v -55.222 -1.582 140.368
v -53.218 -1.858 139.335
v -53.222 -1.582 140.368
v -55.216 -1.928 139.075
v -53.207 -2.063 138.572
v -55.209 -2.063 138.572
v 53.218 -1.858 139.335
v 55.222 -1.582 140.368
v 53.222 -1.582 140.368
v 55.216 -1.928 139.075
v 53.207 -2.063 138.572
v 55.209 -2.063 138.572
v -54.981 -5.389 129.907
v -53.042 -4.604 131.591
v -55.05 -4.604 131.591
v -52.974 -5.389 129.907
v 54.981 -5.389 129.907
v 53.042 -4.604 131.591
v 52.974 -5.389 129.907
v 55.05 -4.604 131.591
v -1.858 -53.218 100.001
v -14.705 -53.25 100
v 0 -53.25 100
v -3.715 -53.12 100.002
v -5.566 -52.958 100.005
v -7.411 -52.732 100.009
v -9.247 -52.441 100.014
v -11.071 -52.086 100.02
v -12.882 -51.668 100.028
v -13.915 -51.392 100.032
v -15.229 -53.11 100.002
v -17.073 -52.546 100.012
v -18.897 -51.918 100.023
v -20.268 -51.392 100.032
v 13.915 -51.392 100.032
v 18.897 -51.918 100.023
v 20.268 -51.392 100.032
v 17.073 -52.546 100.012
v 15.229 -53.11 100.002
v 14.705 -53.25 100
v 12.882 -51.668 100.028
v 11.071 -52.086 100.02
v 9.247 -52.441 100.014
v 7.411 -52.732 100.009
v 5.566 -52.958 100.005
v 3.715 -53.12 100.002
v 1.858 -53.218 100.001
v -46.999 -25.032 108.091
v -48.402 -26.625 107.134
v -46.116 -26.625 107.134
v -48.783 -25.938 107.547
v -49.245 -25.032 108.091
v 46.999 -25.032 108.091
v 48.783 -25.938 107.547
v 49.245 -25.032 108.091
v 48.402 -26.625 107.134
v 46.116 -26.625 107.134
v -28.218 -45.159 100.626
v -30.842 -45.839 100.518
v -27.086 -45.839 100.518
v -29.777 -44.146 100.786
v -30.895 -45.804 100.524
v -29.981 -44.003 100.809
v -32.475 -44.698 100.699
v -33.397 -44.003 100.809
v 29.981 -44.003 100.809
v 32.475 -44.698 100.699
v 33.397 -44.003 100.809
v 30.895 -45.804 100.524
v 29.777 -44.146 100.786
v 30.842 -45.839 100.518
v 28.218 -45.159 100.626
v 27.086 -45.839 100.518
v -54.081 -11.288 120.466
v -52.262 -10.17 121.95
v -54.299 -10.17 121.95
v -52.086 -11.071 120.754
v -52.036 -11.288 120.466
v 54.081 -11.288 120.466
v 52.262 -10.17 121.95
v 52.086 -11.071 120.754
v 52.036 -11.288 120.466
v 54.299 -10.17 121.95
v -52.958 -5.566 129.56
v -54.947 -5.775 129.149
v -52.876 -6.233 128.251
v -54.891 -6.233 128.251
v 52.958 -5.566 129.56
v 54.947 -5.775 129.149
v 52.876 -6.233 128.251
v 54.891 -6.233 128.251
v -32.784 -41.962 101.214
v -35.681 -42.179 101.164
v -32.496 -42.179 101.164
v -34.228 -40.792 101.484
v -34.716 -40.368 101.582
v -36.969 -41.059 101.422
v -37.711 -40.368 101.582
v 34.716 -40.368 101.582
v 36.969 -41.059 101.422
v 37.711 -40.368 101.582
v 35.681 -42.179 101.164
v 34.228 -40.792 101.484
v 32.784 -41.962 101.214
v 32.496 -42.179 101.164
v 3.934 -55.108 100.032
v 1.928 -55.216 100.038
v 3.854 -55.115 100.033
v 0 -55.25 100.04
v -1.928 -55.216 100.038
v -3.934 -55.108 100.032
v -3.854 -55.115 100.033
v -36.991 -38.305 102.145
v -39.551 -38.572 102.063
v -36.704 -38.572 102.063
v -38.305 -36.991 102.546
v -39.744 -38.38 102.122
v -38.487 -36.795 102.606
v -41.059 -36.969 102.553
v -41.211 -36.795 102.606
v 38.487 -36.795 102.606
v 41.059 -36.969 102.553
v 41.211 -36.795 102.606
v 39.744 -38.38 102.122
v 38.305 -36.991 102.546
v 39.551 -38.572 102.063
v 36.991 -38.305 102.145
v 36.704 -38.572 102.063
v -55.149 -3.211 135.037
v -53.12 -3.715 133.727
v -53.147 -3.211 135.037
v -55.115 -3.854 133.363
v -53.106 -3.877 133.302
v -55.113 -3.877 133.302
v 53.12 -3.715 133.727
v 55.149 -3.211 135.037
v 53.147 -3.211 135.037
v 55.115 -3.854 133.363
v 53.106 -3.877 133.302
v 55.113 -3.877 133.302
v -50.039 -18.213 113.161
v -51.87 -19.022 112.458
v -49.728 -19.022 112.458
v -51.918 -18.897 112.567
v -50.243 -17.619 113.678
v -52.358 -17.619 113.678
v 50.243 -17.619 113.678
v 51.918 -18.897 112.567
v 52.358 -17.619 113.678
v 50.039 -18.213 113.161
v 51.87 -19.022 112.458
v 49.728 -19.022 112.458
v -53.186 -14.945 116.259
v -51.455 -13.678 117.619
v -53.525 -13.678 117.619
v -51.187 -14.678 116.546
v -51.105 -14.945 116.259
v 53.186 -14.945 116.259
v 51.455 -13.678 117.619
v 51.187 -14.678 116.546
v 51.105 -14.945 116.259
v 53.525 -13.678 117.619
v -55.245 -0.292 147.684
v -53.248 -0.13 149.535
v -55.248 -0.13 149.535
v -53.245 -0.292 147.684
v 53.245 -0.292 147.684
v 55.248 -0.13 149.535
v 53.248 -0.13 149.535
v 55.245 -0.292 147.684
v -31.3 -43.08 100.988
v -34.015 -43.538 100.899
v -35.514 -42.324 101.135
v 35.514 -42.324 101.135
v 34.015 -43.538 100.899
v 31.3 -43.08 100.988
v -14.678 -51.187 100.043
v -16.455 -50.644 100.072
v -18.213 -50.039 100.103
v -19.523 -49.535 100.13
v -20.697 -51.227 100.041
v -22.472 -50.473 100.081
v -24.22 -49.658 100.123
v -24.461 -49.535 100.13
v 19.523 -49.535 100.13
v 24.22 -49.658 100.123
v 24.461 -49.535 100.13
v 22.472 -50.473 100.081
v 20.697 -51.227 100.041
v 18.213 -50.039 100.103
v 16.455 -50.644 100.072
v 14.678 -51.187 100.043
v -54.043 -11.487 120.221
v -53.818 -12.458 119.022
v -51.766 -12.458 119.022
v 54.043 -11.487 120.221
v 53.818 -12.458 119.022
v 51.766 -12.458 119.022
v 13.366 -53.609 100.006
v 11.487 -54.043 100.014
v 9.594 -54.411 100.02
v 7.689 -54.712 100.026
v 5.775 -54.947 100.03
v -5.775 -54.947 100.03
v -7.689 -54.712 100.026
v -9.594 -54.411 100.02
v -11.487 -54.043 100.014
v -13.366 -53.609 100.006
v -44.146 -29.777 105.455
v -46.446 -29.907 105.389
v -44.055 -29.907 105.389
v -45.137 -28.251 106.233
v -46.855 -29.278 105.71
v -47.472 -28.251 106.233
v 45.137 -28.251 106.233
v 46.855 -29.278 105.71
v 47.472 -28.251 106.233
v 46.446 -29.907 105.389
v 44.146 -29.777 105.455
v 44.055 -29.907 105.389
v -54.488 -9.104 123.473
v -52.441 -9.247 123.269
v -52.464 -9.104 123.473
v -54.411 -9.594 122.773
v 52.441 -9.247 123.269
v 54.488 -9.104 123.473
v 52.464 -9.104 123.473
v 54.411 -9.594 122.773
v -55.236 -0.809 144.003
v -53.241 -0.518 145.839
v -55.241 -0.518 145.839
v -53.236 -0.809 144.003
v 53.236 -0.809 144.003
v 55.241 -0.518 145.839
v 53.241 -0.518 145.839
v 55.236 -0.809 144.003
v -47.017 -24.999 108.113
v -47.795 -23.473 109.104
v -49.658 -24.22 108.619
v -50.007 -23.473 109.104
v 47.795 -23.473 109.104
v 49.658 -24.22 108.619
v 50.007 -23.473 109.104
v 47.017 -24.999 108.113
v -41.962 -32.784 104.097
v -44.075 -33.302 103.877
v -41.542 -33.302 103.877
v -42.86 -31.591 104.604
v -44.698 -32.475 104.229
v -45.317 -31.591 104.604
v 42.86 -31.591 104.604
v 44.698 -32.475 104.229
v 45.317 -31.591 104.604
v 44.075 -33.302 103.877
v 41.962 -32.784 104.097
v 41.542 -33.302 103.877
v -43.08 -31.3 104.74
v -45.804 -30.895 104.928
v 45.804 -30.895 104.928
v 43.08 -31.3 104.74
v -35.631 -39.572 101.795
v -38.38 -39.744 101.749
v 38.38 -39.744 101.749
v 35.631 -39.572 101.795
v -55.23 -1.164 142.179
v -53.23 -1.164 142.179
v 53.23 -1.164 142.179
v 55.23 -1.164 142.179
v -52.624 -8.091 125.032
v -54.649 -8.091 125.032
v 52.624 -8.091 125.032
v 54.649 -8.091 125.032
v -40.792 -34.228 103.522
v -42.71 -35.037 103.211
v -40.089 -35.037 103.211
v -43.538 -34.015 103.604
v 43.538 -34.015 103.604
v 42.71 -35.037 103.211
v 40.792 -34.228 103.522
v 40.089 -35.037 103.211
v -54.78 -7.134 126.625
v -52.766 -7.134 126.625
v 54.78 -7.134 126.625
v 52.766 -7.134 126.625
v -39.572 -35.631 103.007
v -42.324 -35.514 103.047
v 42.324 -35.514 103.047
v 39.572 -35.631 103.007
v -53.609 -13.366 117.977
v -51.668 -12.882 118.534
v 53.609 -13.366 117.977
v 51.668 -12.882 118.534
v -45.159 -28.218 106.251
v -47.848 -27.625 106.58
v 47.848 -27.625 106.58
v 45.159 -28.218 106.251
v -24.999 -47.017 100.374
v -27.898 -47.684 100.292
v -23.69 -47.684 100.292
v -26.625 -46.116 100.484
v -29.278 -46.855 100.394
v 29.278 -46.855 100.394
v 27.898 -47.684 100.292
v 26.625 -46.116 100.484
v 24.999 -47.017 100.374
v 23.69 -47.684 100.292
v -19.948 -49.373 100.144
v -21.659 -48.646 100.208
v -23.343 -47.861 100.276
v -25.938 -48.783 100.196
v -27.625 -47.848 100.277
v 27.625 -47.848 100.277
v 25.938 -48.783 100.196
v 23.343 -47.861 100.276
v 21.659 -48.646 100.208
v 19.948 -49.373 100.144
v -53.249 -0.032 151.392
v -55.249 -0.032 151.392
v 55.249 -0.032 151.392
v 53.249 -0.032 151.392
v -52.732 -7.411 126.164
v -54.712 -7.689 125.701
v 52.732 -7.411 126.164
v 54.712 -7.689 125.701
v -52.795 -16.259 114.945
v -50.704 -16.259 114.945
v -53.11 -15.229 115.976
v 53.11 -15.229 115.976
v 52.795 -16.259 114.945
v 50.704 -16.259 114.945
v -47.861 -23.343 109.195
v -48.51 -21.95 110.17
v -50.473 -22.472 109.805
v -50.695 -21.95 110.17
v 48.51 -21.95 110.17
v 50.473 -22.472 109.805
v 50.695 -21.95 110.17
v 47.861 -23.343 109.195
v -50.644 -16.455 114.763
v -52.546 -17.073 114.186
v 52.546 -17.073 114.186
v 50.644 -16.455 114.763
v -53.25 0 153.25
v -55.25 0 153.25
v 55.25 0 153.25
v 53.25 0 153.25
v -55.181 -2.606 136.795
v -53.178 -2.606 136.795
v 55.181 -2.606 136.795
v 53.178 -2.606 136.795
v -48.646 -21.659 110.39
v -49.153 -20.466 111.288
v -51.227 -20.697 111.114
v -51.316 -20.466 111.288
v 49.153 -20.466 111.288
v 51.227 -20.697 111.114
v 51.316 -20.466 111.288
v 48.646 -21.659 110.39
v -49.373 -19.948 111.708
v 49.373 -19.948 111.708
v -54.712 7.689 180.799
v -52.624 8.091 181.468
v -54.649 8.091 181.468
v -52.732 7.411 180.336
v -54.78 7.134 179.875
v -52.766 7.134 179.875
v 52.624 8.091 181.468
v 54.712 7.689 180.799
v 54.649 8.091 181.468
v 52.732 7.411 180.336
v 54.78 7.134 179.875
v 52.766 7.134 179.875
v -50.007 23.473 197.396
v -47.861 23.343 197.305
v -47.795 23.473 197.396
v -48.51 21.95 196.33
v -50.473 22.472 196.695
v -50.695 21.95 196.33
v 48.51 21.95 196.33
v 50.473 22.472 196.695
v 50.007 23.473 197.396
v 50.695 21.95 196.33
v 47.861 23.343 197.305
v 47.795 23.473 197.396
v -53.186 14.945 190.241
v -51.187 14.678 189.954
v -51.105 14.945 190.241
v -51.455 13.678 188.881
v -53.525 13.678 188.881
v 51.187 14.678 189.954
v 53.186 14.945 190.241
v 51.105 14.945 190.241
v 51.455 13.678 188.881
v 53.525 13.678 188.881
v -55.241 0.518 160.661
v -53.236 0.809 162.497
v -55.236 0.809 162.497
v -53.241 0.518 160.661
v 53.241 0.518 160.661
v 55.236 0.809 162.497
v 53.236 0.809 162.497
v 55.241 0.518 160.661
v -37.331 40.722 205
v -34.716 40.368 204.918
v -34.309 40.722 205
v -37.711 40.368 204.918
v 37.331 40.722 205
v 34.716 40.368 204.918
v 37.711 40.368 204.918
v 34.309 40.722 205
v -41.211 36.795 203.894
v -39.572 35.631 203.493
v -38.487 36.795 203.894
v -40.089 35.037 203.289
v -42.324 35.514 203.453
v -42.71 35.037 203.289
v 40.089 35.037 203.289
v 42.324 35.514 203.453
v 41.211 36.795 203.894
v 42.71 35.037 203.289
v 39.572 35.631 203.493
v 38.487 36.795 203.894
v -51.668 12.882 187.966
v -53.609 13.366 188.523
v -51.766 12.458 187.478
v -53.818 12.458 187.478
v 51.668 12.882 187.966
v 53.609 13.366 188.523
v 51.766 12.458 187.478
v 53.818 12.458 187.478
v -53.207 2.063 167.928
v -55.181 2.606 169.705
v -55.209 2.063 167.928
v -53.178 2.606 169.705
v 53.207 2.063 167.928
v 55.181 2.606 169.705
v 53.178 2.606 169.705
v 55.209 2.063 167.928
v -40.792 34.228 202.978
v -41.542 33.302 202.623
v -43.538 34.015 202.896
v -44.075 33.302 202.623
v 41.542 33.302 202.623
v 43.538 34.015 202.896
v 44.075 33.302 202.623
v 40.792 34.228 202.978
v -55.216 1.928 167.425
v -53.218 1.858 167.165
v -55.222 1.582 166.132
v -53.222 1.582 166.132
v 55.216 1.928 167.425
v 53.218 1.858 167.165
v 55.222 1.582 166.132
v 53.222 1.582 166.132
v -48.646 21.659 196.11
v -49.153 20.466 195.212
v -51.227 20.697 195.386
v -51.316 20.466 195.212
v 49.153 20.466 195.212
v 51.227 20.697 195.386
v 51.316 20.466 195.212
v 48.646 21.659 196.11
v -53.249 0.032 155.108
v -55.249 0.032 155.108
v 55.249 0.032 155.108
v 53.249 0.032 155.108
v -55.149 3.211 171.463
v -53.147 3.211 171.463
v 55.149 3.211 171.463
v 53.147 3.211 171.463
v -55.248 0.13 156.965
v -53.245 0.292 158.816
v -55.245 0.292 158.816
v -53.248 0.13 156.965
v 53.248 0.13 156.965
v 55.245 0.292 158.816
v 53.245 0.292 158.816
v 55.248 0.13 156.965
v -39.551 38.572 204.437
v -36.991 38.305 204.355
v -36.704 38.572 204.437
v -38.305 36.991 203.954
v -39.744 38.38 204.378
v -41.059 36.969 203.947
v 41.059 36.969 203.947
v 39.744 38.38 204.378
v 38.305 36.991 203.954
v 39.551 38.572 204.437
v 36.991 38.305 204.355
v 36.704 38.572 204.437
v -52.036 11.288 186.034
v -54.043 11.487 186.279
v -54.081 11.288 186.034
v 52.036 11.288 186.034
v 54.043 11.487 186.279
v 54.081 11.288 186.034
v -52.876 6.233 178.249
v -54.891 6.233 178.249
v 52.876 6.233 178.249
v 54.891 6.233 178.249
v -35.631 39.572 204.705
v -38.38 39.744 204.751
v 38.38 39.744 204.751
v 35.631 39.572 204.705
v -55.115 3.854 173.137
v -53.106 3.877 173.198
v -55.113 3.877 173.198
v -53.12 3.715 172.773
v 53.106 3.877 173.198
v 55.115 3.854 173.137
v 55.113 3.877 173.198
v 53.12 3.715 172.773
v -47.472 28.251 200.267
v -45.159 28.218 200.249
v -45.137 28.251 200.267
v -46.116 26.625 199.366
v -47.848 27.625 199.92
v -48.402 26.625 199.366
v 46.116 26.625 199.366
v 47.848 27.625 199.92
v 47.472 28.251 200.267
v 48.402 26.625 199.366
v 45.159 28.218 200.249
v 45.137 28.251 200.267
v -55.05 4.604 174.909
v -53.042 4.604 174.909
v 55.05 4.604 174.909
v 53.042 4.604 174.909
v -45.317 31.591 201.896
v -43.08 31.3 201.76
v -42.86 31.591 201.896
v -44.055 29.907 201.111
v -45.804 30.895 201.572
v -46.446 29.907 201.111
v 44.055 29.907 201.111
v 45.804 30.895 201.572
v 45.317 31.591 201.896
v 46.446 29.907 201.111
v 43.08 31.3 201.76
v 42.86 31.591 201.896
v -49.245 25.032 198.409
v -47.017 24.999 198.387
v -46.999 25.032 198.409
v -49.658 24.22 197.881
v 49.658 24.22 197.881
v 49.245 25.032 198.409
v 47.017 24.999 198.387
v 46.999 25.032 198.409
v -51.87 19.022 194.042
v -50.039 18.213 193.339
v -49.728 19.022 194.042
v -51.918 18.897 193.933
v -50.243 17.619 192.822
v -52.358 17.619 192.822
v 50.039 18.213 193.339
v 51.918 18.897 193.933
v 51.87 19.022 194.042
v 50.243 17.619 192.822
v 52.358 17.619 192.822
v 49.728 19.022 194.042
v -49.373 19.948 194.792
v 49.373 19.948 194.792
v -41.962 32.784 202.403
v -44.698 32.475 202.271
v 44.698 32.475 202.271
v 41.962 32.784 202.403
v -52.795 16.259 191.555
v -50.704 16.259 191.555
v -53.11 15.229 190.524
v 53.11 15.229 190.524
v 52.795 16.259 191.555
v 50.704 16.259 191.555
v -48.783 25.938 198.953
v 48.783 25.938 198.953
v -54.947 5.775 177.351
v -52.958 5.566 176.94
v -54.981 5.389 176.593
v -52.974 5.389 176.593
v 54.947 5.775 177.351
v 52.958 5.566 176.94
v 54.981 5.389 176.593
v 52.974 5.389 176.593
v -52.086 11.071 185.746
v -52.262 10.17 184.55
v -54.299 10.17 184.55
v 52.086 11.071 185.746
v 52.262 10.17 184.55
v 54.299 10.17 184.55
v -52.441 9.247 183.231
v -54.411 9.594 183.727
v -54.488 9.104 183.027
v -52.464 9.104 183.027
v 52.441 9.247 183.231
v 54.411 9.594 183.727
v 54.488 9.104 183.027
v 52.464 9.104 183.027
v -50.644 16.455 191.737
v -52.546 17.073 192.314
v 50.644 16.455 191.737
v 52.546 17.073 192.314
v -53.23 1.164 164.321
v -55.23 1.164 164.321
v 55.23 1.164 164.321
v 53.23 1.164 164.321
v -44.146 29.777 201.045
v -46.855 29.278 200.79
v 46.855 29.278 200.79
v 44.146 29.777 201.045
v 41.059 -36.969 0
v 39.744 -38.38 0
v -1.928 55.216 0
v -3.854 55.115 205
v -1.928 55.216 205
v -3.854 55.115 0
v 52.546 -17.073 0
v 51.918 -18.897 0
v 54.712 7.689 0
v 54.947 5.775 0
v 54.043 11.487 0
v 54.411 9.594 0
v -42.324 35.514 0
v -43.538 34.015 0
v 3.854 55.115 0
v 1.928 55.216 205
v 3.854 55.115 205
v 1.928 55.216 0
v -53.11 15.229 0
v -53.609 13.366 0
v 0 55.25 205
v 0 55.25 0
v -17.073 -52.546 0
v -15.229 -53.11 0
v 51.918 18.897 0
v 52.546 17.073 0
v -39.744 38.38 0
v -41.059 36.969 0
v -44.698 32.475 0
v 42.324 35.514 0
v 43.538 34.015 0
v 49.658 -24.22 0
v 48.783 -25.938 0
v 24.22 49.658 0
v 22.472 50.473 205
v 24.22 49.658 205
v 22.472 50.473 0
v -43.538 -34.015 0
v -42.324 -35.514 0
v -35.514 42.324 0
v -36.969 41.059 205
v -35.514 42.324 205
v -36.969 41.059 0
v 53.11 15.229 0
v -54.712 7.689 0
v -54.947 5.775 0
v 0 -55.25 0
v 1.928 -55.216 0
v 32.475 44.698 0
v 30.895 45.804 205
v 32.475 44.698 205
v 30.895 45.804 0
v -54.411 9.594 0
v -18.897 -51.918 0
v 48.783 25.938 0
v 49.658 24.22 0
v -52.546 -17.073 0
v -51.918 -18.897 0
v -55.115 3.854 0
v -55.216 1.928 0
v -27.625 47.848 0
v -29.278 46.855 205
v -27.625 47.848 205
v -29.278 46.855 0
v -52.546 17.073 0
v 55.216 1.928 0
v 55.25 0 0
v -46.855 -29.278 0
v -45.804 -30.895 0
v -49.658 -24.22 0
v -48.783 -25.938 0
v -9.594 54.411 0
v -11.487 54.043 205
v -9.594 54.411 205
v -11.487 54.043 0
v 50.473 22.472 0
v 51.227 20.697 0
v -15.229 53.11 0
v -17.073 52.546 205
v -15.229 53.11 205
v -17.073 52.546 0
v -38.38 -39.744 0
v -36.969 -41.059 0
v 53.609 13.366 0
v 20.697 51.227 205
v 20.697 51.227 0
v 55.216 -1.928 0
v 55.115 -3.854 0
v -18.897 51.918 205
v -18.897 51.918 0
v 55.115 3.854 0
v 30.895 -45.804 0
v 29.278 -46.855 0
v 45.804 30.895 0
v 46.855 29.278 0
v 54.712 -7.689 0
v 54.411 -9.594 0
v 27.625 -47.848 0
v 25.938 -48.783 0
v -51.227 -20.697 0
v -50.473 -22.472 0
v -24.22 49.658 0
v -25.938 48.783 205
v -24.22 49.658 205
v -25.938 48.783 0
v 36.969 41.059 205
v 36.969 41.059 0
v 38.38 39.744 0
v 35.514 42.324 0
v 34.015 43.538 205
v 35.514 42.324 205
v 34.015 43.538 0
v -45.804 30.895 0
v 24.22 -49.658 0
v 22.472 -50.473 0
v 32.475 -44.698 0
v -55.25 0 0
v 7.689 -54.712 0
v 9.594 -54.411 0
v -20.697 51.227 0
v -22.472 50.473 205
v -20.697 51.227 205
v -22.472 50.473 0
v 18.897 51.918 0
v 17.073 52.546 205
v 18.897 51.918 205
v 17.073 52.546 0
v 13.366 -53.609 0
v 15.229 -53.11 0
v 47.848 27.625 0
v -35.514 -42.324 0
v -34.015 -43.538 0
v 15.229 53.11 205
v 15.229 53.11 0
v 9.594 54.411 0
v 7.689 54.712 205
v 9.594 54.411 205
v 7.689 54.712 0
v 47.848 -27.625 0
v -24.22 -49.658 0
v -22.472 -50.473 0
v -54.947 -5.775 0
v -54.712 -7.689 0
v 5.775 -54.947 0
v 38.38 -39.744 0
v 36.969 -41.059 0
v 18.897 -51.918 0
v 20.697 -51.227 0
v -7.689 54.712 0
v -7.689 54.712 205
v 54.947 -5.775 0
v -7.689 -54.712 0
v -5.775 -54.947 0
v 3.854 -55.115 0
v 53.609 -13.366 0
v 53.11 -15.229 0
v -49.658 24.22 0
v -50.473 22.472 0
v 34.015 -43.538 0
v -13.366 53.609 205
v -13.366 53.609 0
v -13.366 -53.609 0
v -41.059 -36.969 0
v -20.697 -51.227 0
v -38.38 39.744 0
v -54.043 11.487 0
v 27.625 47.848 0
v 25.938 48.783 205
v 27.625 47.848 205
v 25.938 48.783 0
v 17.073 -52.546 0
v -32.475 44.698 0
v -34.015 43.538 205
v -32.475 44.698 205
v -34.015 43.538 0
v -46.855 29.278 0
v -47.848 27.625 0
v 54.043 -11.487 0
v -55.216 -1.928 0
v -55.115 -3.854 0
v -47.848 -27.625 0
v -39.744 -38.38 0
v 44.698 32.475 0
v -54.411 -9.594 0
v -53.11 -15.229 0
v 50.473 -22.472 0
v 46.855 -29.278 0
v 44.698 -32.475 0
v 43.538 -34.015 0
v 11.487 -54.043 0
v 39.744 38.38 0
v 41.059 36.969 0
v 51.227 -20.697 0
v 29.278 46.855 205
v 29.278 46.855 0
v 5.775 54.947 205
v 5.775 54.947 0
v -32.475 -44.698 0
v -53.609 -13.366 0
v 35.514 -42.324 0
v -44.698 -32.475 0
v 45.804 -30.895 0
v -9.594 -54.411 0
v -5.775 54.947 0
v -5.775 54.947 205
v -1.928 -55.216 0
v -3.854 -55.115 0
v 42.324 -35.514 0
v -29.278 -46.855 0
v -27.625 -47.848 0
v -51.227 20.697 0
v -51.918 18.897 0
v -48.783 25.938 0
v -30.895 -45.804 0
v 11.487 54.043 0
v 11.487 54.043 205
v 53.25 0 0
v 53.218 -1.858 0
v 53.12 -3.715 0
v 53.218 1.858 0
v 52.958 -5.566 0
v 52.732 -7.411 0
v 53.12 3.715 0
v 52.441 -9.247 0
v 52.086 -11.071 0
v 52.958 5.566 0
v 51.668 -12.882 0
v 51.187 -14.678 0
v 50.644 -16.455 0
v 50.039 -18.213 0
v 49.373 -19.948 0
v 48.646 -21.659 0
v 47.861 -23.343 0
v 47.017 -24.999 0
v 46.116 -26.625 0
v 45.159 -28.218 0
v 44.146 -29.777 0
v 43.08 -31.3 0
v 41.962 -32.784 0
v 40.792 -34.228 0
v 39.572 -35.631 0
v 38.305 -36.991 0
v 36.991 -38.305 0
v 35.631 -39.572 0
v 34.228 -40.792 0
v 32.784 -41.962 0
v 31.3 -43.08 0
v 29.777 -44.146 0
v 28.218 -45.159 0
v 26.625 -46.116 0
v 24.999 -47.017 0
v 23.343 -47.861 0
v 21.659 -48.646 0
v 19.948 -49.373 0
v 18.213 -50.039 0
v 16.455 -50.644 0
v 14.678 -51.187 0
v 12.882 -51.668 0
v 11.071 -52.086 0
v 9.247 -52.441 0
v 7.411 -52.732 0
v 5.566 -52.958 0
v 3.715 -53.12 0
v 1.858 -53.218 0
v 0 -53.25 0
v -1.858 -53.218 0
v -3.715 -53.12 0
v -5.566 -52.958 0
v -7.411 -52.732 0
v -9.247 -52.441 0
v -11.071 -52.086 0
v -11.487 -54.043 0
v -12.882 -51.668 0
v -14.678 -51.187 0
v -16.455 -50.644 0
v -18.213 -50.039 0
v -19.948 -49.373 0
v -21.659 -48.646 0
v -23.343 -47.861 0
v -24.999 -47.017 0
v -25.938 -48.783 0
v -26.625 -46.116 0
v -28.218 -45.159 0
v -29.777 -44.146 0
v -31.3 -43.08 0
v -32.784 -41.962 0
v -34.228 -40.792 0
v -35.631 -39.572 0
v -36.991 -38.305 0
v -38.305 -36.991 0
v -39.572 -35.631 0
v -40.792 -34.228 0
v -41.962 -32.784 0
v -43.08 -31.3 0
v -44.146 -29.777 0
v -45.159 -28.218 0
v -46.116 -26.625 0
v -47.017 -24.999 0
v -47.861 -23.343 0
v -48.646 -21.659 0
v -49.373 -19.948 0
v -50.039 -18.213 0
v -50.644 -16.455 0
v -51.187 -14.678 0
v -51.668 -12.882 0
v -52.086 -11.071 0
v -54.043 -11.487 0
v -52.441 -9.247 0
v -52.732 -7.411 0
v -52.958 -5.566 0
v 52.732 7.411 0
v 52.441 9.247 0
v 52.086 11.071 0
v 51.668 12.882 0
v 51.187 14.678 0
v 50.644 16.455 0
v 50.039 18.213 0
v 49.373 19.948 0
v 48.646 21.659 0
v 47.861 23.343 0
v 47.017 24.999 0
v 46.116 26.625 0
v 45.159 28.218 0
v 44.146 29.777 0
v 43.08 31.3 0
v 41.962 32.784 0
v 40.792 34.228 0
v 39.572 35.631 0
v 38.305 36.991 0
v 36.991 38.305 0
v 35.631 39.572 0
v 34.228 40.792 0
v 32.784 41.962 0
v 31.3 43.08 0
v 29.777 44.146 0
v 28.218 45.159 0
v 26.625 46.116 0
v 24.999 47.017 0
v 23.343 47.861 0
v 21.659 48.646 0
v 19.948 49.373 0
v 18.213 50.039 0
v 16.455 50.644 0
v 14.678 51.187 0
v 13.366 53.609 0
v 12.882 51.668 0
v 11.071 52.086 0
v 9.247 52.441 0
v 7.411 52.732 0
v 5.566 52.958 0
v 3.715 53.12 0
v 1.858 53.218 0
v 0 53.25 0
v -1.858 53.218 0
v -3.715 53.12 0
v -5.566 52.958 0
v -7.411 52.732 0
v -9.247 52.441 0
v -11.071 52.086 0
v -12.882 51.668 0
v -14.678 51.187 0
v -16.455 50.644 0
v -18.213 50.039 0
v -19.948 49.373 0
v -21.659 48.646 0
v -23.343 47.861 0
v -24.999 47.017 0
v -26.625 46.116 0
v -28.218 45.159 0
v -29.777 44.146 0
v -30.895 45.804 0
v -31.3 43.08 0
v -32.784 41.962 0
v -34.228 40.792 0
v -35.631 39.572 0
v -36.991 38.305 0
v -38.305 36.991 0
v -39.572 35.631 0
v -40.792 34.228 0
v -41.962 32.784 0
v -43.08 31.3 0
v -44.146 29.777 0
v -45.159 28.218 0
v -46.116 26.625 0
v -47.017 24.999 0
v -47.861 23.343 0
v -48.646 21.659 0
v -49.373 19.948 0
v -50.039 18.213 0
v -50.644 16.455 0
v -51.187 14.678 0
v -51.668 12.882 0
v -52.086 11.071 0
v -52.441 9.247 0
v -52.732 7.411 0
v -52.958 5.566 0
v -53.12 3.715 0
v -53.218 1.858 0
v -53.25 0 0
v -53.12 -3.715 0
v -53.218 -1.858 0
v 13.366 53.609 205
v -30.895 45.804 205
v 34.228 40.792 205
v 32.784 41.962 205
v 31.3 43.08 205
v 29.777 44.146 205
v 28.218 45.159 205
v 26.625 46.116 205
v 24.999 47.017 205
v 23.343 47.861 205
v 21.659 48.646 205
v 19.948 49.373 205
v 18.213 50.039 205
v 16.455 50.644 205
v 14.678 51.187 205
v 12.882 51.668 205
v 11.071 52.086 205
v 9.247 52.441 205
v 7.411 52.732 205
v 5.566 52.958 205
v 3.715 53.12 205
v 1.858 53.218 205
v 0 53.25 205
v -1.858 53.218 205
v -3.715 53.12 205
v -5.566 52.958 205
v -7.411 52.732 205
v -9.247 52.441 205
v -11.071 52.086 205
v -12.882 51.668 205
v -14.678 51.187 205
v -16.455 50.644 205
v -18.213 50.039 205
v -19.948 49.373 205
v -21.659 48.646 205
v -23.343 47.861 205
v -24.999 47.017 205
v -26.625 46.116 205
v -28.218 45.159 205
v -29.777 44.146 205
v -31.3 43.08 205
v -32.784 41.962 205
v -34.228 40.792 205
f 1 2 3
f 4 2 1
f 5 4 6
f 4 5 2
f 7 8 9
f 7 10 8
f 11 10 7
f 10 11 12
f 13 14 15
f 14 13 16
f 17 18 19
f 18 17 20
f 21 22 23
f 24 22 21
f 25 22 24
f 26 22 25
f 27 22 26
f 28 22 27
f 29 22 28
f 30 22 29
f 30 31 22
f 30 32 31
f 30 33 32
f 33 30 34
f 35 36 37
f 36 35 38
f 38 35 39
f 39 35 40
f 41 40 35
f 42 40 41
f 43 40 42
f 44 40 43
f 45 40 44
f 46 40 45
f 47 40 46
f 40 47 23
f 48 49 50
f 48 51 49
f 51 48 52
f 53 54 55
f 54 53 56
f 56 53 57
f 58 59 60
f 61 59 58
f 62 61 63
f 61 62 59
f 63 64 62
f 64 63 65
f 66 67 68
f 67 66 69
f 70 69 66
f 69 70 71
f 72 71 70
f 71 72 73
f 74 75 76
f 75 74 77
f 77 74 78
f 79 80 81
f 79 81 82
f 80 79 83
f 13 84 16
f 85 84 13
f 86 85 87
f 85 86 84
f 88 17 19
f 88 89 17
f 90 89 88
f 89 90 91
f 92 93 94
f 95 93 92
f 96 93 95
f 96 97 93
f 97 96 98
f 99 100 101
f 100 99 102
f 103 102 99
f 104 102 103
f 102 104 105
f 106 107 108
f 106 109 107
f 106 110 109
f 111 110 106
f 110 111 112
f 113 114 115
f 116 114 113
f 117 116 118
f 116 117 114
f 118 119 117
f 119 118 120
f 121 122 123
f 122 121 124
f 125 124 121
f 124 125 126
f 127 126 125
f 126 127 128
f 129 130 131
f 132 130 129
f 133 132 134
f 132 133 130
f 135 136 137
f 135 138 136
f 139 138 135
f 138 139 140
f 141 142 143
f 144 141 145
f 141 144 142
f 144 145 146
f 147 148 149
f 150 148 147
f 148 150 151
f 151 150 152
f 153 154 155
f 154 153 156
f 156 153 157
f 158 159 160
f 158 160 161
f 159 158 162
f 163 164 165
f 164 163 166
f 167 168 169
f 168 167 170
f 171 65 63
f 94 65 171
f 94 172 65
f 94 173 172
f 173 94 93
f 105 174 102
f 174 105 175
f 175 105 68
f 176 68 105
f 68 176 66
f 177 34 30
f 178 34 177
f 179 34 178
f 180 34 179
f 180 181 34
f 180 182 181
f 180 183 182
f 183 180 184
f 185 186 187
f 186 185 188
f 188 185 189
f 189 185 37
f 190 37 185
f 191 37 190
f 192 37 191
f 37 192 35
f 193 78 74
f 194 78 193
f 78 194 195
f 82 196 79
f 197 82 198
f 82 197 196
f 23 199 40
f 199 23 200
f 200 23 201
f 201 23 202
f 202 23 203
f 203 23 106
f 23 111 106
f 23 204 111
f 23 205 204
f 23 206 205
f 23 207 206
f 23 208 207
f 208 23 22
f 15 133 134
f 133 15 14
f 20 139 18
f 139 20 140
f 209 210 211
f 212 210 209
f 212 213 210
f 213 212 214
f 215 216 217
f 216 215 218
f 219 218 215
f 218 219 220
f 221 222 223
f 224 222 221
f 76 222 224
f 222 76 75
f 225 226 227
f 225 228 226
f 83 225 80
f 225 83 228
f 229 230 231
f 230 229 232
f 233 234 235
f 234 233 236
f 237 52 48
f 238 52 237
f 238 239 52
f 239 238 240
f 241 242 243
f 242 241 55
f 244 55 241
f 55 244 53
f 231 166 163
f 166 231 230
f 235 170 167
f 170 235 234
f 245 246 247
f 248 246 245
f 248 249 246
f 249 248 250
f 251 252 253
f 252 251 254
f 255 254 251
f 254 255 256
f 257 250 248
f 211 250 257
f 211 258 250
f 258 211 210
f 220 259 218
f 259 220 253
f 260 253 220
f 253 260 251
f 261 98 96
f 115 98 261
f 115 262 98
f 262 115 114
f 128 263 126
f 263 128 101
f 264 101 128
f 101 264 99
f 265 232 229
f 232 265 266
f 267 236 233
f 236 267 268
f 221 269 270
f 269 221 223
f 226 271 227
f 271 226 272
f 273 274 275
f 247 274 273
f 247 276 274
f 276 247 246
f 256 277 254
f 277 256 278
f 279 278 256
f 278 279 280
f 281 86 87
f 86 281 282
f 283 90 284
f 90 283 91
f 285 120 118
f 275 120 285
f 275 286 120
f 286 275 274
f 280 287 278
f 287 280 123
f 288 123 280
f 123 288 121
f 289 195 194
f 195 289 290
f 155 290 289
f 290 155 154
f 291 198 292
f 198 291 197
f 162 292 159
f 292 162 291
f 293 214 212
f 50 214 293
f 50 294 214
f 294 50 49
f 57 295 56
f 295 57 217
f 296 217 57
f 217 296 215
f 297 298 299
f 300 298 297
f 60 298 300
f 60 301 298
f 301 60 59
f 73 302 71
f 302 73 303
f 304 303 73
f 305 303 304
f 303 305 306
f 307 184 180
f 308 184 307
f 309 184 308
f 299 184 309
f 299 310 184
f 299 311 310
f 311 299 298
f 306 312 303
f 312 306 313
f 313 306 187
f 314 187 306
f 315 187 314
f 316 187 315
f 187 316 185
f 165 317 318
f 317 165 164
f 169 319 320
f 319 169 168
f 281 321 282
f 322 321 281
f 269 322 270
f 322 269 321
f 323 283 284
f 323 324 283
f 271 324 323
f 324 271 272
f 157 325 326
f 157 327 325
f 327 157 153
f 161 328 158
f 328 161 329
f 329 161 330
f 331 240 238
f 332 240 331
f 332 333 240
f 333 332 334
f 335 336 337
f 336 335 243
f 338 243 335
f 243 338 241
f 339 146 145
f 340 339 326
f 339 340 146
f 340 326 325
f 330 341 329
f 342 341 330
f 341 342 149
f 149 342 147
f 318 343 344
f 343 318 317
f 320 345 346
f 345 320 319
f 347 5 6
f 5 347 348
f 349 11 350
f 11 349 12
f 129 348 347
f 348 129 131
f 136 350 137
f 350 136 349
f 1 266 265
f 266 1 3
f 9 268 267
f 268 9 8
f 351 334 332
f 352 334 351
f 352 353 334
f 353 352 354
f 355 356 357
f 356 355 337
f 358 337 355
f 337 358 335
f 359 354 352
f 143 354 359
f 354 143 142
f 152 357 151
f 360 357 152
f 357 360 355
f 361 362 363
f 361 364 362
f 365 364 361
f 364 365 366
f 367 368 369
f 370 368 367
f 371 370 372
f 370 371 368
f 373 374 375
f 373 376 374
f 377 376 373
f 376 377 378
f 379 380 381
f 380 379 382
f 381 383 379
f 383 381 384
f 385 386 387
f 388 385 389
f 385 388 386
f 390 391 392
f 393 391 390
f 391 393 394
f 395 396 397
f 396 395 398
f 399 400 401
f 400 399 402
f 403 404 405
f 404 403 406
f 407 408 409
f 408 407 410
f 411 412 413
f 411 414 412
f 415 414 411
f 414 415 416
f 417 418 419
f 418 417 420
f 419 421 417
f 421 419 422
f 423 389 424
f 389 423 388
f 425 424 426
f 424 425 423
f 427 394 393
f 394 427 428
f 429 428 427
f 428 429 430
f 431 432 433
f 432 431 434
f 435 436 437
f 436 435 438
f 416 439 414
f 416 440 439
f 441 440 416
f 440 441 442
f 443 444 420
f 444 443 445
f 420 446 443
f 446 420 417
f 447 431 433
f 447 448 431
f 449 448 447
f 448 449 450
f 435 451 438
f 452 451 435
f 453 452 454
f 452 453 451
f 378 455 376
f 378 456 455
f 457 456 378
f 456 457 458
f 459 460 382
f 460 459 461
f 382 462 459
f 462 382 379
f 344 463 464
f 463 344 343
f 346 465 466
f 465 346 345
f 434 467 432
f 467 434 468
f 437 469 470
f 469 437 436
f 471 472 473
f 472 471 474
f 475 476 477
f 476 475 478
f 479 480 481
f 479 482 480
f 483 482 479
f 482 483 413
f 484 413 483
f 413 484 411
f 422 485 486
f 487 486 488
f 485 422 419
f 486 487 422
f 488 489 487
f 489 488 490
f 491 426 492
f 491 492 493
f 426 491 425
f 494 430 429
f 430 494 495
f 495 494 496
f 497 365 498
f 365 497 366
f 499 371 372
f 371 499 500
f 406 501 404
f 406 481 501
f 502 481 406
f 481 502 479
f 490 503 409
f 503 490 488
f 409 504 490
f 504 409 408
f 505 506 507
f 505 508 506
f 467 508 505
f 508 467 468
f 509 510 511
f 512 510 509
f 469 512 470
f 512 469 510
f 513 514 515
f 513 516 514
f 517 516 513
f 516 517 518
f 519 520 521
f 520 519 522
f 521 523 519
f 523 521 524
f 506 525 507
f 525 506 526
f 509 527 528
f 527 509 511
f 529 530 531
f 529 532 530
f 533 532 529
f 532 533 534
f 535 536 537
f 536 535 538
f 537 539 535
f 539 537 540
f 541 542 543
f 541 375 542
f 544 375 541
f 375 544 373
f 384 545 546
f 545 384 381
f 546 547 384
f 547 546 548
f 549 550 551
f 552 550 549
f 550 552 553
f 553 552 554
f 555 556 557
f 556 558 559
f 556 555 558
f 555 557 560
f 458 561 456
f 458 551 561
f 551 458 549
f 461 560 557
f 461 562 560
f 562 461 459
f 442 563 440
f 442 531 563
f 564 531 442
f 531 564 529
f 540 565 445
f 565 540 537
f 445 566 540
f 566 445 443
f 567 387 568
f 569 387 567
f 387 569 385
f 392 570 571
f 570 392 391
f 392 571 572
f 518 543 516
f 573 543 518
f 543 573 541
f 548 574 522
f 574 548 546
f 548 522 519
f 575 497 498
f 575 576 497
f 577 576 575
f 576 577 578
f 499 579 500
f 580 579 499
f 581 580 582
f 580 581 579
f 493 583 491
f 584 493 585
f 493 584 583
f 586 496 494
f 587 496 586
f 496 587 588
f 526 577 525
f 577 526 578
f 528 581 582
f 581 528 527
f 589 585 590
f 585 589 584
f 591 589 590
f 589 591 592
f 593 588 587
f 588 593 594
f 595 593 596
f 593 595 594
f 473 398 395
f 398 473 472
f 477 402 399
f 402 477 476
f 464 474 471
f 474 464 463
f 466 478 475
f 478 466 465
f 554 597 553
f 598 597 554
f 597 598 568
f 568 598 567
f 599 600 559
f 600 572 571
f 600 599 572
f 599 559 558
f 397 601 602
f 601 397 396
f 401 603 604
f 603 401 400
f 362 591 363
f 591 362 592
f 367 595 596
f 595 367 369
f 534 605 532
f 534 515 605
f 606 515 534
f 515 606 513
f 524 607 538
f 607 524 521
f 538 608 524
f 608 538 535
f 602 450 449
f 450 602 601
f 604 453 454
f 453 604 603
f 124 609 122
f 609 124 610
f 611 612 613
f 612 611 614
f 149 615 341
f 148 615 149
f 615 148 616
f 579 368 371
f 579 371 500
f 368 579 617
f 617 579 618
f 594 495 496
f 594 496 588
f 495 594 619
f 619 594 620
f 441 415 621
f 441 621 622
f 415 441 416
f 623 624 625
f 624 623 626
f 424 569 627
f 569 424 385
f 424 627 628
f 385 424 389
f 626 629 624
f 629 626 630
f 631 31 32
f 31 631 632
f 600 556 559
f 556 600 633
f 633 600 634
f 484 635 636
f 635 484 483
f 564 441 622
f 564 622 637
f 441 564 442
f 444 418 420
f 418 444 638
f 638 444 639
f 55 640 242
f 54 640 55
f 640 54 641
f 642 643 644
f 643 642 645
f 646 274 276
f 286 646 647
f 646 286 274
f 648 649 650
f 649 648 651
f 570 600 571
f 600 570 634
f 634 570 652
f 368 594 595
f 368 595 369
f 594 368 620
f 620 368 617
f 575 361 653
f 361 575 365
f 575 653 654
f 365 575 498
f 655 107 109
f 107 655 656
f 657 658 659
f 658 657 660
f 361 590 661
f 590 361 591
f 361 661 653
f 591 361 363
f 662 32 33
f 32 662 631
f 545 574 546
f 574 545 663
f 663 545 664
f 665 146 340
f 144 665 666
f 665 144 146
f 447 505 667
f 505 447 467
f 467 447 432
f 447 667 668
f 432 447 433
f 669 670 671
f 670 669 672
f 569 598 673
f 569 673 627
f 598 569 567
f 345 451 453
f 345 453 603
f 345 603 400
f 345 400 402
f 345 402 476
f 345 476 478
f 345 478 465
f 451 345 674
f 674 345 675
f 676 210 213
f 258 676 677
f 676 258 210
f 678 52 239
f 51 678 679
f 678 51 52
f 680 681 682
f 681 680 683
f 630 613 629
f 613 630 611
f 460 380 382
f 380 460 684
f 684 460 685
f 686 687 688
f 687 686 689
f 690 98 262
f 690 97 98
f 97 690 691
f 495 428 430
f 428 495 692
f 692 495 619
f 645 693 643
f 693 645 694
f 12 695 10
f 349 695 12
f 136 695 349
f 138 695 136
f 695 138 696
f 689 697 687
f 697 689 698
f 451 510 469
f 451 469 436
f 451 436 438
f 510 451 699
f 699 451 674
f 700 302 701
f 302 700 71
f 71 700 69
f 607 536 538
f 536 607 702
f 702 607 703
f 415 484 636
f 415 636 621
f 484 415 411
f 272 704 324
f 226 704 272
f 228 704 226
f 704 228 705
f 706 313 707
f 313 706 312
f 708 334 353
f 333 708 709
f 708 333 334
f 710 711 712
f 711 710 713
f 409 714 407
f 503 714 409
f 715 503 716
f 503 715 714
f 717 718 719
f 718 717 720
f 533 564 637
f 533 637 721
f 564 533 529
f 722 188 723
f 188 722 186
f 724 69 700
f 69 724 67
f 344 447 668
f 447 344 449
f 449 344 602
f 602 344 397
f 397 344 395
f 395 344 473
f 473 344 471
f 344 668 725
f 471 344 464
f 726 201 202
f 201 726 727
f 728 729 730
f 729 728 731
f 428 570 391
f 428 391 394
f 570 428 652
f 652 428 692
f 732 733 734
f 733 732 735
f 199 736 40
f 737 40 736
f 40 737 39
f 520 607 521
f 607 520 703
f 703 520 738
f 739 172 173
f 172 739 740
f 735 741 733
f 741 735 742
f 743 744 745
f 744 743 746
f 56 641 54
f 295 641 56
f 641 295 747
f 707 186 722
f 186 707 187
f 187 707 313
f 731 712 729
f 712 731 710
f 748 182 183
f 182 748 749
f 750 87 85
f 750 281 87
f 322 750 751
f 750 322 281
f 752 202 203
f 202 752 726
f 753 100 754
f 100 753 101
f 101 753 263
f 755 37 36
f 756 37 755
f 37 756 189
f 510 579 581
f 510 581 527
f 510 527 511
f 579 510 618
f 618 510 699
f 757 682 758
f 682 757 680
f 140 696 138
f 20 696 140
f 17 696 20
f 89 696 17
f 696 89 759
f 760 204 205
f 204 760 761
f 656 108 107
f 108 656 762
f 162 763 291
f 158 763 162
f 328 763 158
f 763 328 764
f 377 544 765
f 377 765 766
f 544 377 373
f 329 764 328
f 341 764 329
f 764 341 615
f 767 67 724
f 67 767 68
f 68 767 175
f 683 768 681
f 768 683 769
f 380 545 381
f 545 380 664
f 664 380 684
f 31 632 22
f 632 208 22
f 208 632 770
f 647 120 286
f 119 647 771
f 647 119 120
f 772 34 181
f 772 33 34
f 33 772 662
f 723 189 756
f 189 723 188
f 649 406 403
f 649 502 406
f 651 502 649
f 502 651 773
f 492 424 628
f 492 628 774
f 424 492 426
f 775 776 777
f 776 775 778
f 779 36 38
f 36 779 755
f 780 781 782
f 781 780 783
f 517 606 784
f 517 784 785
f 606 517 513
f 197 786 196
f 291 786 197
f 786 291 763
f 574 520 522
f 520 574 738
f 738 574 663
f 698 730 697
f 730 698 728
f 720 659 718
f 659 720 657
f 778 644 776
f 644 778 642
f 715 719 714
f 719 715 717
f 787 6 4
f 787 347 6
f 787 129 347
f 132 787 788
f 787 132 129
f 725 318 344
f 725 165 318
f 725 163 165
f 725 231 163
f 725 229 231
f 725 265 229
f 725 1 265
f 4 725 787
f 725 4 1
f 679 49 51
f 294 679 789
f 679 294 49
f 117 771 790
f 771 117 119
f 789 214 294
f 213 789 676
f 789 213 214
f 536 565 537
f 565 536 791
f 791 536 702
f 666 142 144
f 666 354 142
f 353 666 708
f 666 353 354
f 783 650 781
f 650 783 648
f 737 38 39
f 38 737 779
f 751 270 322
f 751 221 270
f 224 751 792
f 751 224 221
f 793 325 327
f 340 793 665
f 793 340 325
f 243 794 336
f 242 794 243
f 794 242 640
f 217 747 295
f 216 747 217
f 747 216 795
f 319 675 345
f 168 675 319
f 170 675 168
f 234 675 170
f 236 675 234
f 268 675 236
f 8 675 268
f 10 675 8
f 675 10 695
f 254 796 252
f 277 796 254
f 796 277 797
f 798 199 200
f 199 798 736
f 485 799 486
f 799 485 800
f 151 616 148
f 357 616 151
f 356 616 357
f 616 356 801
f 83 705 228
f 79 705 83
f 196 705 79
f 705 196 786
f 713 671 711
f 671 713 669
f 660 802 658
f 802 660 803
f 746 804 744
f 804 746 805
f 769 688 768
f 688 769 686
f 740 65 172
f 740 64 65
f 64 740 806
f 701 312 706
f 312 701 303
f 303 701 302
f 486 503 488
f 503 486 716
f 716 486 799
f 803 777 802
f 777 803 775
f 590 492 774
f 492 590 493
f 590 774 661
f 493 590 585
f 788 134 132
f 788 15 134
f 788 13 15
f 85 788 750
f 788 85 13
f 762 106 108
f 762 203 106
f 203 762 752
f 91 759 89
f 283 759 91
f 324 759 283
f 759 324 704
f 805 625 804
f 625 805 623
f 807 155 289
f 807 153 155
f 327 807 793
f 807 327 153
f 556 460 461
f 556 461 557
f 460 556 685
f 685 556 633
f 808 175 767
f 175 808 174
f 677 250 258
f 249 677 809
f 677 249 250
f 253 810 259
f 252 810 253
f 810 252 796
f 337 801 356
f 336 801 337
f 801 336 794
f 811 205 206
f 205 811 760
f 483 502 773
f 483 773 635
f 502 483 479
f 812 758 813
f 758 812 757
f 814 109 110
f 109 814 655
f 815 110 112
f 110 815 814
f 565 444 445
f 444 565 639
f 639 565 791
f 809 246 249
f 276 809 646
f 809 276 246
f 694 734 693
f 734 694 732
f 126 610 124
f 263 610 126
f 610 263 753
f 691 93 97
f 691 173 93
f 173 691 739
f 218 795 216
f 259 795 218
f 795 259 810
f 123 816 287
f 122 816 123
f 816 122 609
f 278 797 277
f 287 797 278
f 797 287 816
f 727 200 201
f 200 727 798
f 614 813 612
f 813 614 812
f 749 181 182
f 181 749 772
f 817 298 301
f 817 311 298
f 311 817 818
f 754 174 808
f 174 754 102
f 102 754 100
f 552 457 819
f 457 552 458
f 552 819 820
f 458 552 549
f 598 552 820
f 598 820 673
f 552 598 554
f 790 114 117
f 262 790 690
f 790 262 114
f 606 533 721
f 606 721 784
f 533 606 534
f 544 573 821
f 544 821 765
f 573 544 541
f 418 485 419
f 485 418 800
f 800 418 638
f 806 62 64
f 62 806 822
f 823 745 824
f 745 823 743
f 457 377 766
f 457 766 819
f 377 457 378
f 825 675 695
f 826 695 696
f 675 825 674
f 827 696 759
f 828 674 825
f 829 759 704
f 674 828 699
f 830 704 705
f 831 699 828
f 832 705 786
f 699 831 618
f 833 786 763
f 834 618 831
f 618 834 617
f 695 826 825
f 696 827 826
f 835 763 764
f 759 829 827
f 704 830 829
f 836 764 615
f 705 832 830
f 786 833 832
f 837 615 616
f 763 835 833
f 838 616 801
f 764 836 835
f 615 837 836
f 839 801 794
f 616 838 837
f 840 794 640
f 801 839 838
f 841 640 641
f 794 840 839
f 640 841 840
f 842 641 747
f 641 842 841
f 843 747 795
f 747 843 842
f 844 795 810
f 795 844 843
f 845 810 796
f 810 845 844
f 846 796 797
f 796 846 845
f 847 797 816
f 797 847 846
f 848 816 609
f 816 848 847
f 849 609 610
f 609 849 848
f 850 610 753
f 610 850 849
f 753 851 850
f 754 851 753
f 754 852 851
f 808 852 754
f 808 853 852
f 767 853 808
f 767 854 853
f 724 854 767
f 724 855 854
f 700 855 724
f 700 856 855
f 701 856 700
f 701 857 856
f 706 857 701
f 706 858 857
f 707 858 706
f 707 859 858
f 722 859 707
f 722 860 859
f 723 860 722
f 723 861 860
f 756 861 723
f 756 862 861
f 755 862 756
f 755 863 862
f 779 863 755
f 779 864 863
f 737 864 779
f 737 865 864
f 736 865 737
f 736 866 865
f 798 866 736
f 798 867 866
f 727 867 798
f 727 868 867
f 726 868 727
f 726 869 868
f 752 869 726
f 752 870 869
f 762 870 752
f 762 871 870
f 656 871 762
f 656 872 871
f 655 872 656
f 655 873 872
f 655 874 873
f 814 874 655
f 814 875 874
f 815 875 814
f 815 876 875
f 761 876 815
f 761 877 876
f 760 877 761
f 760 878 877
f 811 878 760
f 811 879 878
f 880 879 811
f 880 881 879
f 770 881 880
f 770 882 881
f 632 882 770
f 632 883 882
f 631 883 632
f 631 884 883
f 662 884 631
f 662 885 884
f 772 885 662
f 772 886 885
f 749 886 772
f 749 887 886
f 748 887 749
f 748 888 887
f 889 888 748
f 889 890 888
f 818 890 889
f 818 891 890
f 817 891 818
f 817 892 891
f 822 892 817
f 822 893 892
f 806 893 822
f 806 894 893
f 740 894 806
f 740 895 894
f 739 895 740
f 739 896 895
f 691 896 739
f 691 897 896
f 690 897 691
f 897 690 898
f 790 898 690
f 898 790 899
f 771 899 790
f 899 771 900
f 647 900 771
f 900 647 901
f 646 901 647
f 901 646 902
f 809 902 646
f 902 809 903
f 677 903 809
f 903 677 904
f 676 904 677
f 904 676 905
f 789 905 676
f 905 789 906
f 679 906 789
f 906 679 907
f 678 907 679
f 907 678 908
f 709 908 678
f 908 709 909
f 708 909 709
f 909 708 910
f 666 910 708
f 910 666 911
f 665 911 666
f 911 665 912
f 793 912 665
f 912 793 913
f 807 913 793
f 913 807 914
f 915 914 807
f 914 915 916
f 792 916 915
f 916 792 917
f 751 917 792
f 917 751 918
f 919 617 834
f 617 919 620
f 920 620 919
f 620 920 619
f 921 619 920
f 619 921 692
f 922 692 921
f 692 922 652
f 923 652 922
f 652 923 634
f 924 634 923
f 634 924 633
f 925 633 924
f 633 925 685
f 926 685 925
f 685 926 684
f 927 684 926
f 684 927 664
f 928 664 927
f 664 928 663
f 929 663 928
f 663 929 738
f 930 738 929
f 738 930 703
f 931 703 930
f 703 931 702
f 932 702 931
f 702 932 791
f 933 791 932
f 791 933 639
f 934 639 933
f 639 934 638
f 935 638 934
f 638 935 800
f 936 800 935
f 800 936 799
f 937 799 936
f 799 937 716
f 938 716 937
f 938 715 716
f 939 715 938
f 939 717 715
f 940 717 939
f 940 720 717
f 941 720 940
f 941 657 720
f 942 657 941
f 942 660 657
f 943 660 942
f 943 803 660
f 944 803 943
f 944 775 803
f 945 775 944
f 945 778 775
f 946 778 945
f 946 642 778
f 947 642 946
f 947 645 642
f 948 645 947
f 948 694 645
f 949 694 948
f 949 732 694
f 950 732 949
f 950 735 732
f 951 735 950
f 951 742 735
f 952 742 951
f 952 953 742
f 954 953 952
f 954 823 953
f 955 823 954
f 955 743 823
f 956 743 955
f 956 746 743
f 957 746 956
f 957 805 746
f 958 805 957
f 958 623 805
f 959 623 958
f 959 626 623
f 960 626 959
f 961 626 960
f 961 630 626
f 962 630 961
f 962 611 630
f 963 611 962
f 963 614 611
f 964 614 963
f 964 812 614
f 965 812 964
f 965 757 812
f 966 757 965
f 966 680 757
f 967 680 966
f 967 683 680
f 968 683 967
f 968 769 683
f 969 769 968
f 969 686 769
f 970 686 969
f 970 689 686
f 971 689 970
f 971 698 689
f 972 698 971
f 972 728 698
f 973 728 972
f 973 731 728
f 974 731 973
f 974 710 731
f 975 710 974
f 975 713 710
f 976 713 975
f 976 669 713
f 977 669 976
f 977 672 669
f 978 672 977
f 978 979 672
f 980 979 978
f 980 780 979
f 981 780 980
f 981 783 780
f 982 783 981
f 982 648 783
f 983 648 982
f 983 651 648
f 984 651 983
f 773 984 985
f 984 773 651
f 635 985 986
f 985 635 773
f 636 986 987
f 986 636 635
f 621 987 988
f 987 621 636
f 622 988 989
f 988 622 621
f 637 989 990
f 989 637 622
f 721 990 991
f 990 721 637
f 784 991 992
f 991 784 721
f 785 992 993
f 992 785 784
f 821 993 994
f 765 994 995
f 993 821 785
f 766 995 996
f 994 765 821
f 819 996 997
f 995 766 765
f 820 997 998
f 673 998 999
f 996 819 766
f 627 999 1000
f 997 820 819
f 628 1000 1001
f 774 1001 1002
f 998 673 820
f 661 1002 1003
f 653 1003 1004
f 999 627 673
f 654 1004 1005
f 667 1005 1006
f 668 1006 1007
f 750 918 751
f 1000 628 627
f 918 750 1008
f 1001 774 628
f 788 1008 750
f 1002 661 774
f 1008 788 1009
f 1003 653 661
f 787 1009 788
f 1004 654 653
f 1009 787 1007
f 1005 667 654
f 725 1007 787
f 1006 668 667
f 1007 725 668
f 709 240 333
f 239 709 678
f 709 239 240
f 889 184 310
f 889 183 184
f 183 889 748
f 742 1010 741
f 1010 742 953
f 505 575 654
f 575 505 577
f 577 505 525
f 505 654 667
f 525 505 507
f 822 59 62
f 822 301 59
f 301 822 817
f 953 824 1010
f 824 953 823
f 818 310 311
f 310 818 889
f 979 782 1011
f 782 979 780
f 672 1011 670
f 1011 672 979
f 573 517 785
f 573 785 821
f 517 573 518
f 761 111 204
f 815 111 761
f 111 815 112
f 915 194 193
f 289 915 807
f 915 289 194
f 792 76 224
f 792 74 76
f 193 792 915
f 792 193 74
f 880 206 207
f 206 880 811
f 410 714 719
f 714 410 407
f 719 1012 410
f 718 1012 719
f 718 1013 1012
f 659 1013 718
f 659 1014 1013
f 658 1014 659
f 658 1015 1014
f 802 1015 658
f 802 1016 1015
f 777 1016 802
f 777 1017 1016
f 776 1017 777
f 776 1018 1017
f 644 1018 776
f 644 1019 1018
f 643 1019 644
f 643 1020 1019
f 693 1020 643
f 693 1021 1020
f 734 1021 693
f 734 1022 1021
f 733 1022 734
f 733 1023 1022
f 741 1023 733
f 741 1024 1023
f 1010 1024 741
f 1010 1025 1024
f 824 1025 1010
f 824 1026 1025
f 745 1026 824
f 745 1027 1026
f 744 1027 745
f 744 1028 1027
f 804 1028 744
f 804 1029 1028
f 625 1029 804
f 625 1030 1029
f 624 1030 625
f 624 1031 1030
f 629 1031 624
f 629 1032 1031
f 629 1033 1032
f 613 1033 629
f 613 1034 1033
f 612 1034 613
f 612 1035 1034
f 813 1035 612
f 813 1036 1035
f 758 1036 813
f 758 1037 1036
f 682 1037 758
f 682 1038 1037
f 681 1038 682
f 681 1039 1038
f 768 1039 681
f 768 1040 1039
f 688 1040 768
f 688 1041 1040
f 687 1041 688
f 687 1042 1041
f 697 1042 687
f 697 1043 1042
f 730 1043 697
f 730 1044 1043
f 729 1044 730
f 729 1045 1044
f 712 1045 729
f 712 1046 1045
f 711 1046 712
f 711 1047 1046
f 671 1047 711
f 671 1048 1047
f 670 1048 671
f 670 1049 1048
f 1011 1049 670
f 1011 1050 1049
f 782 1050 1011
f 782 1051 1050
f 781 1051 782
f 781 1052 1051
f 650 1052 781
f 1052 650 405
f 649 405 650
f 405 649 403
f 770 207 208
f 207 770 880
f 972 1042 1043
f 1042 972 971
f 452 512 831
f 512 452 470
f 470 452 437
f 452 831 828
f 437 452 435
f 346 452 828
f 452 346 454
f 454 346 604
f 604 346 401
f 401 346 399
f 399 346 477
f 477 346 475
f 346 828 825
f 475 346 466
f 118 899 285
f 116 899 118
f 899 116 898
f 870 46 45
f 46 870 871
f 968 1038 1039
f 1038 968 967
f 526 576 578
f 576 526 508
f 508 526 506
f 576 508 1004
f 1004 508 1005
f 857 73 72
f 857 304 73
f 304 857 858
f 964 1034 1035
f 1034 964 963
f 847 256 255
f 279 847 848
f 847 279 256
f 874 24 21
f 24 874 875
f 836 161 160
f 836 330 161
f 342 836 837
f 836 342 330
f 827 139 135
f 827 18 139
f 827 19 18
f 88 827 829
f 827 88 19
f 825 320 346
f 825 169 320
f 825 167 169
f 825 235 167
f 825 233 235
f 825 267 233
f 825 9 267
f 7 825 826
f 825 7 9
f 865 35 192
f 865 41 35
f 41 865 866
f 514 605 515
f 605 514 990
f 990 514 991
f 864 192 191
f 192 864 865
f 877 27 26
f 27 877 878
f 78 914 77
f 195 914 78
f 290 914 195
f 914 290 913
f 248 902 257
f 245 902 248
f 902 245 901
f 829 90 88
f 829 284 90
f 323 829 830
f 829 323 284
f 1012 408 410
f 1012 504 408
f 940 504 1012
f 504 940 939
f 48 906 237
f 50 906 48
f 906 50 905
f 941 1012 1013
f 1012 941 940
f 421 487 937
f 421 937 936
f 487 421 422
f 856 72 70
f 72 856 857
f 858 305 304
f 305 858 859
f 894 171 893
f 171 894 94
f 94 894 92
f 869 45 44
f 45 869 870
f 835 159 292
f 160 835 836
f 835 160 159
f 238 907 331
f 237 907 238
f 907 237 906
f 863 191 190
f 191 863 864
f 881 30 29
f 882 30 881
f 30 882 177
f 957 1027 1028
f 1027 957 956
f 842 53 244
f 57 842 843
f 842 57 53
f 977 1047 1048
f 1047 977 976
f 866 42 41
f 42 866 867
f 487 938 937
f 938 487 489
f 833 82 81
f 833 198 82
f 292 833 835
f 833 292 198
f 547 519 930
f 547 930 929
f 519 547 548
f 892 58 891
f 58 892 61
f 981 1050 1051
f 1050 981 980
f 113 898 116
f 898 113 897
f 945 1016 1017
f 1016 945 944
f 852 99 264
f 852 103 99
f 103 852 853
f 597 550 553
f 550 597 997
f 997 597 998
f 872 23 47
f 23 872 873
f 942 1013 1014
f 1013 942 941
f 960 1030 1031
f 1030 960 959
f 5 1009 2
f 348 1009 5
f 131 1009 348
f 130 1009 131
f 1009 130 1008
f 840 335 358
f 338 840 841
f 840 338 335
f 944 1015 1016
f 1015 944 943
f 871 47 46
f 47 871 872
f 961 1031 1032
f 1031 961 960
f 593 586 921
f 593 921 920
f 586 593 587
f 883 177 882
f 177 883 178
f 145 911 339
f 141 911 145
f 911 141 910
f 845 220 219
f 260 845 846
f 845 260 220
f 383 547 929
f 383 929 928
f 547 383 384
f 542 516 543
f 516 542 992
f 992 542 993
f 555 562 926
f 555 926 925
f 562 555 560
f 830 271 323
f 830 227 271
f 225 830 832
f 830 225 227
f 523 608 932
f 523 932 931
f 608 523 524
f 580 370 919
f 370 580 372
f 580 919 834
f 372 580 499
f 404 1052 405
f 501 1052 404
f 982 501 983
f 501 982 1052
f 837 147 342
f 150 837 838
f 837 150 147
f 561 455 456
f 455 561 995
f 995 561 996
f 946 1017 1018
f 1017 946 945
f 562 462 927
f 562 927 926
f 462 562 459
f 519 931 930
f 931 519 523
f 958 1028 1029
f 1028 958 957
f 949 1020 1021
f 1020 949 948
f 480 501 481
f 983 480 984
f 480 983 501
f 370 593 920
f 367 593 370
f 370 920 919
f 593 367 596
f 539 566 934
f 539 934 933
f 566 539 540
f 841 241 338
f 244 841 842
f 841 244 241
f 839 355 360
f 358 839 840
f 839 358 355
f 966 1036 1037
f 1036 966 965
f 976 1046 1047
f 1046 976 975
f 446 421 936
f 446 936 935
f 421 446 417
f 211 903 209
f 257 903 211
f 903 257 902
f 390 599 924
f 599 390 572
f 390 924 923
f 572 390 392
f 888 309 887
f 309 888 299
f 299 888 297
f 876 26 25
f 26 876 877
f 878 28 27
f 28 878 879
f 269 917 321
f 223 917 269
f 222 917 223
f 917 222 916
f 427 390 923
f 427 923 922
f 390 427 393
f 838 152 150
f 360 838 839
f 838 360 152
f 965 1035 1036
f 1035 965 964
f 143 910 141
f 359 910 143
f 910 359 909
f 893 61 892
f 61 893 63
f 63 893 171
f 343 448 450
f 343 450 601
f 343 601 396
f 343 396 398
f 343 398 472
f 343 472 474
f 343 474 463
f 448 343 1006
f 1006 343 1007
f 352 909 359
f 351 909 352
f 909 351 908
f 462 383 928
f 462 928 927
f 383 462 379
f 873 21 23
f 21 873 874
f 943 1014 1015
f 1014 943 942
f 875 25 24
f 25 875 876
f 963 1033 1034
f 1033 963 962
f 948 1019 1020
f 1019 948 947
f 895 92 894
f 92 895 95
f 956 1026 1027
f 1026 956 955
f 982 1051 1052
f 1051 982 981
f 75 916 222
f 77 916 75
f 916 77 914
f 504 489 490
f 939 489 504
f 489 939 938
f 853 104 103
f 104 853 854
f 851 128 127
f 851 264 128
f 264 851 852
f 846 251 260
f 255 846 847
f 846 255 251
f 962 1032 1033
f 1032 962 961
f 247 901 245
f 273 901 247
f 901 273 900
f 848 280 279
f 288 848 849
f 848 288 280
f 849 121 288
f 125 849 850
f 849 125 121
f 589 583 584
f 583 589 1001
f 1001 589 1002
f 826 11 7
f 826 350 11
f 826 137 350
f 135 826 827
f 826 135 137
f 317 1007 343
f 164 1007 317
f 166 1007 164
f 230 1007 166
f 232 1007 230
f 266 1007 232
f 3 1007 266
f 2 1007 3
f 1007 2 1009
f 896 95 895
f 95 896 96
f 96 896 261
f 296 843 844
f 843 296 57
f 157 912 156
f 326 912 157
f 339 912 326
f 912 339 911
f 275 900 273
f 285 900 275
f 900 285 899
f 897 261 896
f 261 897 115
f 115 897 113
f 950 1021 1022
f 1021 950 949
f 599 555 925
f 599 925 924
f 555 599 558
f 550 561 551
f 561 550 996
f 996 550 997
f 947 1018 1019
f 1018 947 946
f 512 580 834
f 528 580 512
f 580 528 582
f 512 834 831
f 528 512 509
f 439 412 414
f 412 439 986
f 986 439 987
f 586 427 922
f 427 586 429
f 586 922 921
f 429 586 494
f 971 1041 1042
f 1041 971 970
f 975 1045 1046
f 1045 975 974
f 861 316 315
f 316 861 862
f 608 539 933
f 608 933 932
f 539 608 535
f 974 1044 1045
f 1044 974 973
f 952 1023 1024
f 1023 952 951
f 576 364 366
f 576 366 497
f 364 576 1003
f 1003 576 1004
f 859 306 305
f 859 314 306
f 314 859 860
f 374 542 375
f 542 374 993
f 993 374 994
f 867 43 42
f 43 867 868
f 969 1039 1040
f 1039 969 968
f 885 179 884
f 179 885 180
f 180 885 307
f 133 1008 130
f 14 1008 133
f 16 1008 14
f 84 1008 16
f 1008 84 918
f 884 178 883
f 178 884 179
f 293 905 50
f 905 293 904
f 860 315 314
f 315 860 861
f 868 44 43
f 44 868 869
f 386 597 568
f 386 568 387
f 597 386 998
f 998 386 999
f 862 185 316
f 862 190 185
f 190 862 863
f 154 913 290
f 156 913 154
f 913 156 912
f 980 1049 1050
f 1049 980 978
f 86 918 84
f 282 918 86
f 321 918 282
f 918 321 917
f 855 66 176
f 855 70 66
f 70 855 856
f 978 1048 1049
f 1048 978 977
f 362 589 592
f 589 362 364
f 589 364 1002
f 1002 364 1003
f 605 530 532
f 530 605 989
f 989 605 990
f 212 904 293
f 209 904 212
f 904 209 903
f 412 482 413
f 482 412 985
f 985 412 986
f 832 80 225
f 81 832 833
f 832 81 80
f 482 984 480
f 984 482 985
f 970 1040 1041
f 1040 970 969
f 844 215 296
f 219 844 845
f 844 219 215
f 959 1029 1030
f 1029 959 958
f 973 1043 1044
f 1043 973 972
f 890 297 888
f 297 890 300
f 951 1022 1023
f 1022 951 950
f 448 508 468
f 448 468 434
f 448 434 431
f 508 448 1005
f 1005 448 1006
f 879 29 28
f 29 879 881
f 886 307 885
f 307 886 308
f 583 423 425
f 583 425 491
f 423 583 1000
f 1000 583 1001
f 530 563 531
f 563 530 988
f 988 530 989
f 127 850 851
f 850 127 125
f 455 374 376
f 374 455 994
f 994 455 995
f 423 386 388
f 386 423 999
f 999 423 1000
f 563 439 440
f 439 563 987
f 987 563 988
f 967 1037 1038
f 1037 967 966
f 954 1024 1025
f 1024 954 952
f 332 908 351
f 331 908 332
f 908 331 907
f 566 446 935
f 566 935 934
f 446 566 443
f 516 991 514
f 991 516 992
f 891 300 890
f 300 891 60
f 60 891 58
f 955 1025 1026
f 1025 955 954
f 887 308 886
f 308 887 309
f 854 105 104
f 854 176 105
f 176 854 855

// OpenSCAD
diameter = 106.5;
radius = diameter/2.0;

height = 105.0;
base = 100.0;
wall=2.0;

$fn=180;

outer_radius = radius + wall;

spine_width = wall;
spine_length = (height + base) - 2 * 20;

/* main cylinder */
difference()
{

union () {
/* main cylinder */
cylinder(h=height+base,r=outer_radius);
    
 /* spine */
 //translate([0,outer_radius-1,20])
 //cube([wall,20,spine_length]);   
}
translate([0,0,-0.5])
cylinder(h=height+base+1.0,r=radius);


/* negative space */
translate([0,0,base+diameter])
difference()
{
union()
{
cube([diameter*2,diameter*2,diameter],center=true);

rotate([0,90,0])
translate([radius,-radius,-2*radius])
cylinder(r=radius,h=diameter*2);
}

rotate([0,90,0])
translate([radius,radius,-diameter-0.5])
cylinder(r=radius,h=diameter*2+1.0);
}
}
